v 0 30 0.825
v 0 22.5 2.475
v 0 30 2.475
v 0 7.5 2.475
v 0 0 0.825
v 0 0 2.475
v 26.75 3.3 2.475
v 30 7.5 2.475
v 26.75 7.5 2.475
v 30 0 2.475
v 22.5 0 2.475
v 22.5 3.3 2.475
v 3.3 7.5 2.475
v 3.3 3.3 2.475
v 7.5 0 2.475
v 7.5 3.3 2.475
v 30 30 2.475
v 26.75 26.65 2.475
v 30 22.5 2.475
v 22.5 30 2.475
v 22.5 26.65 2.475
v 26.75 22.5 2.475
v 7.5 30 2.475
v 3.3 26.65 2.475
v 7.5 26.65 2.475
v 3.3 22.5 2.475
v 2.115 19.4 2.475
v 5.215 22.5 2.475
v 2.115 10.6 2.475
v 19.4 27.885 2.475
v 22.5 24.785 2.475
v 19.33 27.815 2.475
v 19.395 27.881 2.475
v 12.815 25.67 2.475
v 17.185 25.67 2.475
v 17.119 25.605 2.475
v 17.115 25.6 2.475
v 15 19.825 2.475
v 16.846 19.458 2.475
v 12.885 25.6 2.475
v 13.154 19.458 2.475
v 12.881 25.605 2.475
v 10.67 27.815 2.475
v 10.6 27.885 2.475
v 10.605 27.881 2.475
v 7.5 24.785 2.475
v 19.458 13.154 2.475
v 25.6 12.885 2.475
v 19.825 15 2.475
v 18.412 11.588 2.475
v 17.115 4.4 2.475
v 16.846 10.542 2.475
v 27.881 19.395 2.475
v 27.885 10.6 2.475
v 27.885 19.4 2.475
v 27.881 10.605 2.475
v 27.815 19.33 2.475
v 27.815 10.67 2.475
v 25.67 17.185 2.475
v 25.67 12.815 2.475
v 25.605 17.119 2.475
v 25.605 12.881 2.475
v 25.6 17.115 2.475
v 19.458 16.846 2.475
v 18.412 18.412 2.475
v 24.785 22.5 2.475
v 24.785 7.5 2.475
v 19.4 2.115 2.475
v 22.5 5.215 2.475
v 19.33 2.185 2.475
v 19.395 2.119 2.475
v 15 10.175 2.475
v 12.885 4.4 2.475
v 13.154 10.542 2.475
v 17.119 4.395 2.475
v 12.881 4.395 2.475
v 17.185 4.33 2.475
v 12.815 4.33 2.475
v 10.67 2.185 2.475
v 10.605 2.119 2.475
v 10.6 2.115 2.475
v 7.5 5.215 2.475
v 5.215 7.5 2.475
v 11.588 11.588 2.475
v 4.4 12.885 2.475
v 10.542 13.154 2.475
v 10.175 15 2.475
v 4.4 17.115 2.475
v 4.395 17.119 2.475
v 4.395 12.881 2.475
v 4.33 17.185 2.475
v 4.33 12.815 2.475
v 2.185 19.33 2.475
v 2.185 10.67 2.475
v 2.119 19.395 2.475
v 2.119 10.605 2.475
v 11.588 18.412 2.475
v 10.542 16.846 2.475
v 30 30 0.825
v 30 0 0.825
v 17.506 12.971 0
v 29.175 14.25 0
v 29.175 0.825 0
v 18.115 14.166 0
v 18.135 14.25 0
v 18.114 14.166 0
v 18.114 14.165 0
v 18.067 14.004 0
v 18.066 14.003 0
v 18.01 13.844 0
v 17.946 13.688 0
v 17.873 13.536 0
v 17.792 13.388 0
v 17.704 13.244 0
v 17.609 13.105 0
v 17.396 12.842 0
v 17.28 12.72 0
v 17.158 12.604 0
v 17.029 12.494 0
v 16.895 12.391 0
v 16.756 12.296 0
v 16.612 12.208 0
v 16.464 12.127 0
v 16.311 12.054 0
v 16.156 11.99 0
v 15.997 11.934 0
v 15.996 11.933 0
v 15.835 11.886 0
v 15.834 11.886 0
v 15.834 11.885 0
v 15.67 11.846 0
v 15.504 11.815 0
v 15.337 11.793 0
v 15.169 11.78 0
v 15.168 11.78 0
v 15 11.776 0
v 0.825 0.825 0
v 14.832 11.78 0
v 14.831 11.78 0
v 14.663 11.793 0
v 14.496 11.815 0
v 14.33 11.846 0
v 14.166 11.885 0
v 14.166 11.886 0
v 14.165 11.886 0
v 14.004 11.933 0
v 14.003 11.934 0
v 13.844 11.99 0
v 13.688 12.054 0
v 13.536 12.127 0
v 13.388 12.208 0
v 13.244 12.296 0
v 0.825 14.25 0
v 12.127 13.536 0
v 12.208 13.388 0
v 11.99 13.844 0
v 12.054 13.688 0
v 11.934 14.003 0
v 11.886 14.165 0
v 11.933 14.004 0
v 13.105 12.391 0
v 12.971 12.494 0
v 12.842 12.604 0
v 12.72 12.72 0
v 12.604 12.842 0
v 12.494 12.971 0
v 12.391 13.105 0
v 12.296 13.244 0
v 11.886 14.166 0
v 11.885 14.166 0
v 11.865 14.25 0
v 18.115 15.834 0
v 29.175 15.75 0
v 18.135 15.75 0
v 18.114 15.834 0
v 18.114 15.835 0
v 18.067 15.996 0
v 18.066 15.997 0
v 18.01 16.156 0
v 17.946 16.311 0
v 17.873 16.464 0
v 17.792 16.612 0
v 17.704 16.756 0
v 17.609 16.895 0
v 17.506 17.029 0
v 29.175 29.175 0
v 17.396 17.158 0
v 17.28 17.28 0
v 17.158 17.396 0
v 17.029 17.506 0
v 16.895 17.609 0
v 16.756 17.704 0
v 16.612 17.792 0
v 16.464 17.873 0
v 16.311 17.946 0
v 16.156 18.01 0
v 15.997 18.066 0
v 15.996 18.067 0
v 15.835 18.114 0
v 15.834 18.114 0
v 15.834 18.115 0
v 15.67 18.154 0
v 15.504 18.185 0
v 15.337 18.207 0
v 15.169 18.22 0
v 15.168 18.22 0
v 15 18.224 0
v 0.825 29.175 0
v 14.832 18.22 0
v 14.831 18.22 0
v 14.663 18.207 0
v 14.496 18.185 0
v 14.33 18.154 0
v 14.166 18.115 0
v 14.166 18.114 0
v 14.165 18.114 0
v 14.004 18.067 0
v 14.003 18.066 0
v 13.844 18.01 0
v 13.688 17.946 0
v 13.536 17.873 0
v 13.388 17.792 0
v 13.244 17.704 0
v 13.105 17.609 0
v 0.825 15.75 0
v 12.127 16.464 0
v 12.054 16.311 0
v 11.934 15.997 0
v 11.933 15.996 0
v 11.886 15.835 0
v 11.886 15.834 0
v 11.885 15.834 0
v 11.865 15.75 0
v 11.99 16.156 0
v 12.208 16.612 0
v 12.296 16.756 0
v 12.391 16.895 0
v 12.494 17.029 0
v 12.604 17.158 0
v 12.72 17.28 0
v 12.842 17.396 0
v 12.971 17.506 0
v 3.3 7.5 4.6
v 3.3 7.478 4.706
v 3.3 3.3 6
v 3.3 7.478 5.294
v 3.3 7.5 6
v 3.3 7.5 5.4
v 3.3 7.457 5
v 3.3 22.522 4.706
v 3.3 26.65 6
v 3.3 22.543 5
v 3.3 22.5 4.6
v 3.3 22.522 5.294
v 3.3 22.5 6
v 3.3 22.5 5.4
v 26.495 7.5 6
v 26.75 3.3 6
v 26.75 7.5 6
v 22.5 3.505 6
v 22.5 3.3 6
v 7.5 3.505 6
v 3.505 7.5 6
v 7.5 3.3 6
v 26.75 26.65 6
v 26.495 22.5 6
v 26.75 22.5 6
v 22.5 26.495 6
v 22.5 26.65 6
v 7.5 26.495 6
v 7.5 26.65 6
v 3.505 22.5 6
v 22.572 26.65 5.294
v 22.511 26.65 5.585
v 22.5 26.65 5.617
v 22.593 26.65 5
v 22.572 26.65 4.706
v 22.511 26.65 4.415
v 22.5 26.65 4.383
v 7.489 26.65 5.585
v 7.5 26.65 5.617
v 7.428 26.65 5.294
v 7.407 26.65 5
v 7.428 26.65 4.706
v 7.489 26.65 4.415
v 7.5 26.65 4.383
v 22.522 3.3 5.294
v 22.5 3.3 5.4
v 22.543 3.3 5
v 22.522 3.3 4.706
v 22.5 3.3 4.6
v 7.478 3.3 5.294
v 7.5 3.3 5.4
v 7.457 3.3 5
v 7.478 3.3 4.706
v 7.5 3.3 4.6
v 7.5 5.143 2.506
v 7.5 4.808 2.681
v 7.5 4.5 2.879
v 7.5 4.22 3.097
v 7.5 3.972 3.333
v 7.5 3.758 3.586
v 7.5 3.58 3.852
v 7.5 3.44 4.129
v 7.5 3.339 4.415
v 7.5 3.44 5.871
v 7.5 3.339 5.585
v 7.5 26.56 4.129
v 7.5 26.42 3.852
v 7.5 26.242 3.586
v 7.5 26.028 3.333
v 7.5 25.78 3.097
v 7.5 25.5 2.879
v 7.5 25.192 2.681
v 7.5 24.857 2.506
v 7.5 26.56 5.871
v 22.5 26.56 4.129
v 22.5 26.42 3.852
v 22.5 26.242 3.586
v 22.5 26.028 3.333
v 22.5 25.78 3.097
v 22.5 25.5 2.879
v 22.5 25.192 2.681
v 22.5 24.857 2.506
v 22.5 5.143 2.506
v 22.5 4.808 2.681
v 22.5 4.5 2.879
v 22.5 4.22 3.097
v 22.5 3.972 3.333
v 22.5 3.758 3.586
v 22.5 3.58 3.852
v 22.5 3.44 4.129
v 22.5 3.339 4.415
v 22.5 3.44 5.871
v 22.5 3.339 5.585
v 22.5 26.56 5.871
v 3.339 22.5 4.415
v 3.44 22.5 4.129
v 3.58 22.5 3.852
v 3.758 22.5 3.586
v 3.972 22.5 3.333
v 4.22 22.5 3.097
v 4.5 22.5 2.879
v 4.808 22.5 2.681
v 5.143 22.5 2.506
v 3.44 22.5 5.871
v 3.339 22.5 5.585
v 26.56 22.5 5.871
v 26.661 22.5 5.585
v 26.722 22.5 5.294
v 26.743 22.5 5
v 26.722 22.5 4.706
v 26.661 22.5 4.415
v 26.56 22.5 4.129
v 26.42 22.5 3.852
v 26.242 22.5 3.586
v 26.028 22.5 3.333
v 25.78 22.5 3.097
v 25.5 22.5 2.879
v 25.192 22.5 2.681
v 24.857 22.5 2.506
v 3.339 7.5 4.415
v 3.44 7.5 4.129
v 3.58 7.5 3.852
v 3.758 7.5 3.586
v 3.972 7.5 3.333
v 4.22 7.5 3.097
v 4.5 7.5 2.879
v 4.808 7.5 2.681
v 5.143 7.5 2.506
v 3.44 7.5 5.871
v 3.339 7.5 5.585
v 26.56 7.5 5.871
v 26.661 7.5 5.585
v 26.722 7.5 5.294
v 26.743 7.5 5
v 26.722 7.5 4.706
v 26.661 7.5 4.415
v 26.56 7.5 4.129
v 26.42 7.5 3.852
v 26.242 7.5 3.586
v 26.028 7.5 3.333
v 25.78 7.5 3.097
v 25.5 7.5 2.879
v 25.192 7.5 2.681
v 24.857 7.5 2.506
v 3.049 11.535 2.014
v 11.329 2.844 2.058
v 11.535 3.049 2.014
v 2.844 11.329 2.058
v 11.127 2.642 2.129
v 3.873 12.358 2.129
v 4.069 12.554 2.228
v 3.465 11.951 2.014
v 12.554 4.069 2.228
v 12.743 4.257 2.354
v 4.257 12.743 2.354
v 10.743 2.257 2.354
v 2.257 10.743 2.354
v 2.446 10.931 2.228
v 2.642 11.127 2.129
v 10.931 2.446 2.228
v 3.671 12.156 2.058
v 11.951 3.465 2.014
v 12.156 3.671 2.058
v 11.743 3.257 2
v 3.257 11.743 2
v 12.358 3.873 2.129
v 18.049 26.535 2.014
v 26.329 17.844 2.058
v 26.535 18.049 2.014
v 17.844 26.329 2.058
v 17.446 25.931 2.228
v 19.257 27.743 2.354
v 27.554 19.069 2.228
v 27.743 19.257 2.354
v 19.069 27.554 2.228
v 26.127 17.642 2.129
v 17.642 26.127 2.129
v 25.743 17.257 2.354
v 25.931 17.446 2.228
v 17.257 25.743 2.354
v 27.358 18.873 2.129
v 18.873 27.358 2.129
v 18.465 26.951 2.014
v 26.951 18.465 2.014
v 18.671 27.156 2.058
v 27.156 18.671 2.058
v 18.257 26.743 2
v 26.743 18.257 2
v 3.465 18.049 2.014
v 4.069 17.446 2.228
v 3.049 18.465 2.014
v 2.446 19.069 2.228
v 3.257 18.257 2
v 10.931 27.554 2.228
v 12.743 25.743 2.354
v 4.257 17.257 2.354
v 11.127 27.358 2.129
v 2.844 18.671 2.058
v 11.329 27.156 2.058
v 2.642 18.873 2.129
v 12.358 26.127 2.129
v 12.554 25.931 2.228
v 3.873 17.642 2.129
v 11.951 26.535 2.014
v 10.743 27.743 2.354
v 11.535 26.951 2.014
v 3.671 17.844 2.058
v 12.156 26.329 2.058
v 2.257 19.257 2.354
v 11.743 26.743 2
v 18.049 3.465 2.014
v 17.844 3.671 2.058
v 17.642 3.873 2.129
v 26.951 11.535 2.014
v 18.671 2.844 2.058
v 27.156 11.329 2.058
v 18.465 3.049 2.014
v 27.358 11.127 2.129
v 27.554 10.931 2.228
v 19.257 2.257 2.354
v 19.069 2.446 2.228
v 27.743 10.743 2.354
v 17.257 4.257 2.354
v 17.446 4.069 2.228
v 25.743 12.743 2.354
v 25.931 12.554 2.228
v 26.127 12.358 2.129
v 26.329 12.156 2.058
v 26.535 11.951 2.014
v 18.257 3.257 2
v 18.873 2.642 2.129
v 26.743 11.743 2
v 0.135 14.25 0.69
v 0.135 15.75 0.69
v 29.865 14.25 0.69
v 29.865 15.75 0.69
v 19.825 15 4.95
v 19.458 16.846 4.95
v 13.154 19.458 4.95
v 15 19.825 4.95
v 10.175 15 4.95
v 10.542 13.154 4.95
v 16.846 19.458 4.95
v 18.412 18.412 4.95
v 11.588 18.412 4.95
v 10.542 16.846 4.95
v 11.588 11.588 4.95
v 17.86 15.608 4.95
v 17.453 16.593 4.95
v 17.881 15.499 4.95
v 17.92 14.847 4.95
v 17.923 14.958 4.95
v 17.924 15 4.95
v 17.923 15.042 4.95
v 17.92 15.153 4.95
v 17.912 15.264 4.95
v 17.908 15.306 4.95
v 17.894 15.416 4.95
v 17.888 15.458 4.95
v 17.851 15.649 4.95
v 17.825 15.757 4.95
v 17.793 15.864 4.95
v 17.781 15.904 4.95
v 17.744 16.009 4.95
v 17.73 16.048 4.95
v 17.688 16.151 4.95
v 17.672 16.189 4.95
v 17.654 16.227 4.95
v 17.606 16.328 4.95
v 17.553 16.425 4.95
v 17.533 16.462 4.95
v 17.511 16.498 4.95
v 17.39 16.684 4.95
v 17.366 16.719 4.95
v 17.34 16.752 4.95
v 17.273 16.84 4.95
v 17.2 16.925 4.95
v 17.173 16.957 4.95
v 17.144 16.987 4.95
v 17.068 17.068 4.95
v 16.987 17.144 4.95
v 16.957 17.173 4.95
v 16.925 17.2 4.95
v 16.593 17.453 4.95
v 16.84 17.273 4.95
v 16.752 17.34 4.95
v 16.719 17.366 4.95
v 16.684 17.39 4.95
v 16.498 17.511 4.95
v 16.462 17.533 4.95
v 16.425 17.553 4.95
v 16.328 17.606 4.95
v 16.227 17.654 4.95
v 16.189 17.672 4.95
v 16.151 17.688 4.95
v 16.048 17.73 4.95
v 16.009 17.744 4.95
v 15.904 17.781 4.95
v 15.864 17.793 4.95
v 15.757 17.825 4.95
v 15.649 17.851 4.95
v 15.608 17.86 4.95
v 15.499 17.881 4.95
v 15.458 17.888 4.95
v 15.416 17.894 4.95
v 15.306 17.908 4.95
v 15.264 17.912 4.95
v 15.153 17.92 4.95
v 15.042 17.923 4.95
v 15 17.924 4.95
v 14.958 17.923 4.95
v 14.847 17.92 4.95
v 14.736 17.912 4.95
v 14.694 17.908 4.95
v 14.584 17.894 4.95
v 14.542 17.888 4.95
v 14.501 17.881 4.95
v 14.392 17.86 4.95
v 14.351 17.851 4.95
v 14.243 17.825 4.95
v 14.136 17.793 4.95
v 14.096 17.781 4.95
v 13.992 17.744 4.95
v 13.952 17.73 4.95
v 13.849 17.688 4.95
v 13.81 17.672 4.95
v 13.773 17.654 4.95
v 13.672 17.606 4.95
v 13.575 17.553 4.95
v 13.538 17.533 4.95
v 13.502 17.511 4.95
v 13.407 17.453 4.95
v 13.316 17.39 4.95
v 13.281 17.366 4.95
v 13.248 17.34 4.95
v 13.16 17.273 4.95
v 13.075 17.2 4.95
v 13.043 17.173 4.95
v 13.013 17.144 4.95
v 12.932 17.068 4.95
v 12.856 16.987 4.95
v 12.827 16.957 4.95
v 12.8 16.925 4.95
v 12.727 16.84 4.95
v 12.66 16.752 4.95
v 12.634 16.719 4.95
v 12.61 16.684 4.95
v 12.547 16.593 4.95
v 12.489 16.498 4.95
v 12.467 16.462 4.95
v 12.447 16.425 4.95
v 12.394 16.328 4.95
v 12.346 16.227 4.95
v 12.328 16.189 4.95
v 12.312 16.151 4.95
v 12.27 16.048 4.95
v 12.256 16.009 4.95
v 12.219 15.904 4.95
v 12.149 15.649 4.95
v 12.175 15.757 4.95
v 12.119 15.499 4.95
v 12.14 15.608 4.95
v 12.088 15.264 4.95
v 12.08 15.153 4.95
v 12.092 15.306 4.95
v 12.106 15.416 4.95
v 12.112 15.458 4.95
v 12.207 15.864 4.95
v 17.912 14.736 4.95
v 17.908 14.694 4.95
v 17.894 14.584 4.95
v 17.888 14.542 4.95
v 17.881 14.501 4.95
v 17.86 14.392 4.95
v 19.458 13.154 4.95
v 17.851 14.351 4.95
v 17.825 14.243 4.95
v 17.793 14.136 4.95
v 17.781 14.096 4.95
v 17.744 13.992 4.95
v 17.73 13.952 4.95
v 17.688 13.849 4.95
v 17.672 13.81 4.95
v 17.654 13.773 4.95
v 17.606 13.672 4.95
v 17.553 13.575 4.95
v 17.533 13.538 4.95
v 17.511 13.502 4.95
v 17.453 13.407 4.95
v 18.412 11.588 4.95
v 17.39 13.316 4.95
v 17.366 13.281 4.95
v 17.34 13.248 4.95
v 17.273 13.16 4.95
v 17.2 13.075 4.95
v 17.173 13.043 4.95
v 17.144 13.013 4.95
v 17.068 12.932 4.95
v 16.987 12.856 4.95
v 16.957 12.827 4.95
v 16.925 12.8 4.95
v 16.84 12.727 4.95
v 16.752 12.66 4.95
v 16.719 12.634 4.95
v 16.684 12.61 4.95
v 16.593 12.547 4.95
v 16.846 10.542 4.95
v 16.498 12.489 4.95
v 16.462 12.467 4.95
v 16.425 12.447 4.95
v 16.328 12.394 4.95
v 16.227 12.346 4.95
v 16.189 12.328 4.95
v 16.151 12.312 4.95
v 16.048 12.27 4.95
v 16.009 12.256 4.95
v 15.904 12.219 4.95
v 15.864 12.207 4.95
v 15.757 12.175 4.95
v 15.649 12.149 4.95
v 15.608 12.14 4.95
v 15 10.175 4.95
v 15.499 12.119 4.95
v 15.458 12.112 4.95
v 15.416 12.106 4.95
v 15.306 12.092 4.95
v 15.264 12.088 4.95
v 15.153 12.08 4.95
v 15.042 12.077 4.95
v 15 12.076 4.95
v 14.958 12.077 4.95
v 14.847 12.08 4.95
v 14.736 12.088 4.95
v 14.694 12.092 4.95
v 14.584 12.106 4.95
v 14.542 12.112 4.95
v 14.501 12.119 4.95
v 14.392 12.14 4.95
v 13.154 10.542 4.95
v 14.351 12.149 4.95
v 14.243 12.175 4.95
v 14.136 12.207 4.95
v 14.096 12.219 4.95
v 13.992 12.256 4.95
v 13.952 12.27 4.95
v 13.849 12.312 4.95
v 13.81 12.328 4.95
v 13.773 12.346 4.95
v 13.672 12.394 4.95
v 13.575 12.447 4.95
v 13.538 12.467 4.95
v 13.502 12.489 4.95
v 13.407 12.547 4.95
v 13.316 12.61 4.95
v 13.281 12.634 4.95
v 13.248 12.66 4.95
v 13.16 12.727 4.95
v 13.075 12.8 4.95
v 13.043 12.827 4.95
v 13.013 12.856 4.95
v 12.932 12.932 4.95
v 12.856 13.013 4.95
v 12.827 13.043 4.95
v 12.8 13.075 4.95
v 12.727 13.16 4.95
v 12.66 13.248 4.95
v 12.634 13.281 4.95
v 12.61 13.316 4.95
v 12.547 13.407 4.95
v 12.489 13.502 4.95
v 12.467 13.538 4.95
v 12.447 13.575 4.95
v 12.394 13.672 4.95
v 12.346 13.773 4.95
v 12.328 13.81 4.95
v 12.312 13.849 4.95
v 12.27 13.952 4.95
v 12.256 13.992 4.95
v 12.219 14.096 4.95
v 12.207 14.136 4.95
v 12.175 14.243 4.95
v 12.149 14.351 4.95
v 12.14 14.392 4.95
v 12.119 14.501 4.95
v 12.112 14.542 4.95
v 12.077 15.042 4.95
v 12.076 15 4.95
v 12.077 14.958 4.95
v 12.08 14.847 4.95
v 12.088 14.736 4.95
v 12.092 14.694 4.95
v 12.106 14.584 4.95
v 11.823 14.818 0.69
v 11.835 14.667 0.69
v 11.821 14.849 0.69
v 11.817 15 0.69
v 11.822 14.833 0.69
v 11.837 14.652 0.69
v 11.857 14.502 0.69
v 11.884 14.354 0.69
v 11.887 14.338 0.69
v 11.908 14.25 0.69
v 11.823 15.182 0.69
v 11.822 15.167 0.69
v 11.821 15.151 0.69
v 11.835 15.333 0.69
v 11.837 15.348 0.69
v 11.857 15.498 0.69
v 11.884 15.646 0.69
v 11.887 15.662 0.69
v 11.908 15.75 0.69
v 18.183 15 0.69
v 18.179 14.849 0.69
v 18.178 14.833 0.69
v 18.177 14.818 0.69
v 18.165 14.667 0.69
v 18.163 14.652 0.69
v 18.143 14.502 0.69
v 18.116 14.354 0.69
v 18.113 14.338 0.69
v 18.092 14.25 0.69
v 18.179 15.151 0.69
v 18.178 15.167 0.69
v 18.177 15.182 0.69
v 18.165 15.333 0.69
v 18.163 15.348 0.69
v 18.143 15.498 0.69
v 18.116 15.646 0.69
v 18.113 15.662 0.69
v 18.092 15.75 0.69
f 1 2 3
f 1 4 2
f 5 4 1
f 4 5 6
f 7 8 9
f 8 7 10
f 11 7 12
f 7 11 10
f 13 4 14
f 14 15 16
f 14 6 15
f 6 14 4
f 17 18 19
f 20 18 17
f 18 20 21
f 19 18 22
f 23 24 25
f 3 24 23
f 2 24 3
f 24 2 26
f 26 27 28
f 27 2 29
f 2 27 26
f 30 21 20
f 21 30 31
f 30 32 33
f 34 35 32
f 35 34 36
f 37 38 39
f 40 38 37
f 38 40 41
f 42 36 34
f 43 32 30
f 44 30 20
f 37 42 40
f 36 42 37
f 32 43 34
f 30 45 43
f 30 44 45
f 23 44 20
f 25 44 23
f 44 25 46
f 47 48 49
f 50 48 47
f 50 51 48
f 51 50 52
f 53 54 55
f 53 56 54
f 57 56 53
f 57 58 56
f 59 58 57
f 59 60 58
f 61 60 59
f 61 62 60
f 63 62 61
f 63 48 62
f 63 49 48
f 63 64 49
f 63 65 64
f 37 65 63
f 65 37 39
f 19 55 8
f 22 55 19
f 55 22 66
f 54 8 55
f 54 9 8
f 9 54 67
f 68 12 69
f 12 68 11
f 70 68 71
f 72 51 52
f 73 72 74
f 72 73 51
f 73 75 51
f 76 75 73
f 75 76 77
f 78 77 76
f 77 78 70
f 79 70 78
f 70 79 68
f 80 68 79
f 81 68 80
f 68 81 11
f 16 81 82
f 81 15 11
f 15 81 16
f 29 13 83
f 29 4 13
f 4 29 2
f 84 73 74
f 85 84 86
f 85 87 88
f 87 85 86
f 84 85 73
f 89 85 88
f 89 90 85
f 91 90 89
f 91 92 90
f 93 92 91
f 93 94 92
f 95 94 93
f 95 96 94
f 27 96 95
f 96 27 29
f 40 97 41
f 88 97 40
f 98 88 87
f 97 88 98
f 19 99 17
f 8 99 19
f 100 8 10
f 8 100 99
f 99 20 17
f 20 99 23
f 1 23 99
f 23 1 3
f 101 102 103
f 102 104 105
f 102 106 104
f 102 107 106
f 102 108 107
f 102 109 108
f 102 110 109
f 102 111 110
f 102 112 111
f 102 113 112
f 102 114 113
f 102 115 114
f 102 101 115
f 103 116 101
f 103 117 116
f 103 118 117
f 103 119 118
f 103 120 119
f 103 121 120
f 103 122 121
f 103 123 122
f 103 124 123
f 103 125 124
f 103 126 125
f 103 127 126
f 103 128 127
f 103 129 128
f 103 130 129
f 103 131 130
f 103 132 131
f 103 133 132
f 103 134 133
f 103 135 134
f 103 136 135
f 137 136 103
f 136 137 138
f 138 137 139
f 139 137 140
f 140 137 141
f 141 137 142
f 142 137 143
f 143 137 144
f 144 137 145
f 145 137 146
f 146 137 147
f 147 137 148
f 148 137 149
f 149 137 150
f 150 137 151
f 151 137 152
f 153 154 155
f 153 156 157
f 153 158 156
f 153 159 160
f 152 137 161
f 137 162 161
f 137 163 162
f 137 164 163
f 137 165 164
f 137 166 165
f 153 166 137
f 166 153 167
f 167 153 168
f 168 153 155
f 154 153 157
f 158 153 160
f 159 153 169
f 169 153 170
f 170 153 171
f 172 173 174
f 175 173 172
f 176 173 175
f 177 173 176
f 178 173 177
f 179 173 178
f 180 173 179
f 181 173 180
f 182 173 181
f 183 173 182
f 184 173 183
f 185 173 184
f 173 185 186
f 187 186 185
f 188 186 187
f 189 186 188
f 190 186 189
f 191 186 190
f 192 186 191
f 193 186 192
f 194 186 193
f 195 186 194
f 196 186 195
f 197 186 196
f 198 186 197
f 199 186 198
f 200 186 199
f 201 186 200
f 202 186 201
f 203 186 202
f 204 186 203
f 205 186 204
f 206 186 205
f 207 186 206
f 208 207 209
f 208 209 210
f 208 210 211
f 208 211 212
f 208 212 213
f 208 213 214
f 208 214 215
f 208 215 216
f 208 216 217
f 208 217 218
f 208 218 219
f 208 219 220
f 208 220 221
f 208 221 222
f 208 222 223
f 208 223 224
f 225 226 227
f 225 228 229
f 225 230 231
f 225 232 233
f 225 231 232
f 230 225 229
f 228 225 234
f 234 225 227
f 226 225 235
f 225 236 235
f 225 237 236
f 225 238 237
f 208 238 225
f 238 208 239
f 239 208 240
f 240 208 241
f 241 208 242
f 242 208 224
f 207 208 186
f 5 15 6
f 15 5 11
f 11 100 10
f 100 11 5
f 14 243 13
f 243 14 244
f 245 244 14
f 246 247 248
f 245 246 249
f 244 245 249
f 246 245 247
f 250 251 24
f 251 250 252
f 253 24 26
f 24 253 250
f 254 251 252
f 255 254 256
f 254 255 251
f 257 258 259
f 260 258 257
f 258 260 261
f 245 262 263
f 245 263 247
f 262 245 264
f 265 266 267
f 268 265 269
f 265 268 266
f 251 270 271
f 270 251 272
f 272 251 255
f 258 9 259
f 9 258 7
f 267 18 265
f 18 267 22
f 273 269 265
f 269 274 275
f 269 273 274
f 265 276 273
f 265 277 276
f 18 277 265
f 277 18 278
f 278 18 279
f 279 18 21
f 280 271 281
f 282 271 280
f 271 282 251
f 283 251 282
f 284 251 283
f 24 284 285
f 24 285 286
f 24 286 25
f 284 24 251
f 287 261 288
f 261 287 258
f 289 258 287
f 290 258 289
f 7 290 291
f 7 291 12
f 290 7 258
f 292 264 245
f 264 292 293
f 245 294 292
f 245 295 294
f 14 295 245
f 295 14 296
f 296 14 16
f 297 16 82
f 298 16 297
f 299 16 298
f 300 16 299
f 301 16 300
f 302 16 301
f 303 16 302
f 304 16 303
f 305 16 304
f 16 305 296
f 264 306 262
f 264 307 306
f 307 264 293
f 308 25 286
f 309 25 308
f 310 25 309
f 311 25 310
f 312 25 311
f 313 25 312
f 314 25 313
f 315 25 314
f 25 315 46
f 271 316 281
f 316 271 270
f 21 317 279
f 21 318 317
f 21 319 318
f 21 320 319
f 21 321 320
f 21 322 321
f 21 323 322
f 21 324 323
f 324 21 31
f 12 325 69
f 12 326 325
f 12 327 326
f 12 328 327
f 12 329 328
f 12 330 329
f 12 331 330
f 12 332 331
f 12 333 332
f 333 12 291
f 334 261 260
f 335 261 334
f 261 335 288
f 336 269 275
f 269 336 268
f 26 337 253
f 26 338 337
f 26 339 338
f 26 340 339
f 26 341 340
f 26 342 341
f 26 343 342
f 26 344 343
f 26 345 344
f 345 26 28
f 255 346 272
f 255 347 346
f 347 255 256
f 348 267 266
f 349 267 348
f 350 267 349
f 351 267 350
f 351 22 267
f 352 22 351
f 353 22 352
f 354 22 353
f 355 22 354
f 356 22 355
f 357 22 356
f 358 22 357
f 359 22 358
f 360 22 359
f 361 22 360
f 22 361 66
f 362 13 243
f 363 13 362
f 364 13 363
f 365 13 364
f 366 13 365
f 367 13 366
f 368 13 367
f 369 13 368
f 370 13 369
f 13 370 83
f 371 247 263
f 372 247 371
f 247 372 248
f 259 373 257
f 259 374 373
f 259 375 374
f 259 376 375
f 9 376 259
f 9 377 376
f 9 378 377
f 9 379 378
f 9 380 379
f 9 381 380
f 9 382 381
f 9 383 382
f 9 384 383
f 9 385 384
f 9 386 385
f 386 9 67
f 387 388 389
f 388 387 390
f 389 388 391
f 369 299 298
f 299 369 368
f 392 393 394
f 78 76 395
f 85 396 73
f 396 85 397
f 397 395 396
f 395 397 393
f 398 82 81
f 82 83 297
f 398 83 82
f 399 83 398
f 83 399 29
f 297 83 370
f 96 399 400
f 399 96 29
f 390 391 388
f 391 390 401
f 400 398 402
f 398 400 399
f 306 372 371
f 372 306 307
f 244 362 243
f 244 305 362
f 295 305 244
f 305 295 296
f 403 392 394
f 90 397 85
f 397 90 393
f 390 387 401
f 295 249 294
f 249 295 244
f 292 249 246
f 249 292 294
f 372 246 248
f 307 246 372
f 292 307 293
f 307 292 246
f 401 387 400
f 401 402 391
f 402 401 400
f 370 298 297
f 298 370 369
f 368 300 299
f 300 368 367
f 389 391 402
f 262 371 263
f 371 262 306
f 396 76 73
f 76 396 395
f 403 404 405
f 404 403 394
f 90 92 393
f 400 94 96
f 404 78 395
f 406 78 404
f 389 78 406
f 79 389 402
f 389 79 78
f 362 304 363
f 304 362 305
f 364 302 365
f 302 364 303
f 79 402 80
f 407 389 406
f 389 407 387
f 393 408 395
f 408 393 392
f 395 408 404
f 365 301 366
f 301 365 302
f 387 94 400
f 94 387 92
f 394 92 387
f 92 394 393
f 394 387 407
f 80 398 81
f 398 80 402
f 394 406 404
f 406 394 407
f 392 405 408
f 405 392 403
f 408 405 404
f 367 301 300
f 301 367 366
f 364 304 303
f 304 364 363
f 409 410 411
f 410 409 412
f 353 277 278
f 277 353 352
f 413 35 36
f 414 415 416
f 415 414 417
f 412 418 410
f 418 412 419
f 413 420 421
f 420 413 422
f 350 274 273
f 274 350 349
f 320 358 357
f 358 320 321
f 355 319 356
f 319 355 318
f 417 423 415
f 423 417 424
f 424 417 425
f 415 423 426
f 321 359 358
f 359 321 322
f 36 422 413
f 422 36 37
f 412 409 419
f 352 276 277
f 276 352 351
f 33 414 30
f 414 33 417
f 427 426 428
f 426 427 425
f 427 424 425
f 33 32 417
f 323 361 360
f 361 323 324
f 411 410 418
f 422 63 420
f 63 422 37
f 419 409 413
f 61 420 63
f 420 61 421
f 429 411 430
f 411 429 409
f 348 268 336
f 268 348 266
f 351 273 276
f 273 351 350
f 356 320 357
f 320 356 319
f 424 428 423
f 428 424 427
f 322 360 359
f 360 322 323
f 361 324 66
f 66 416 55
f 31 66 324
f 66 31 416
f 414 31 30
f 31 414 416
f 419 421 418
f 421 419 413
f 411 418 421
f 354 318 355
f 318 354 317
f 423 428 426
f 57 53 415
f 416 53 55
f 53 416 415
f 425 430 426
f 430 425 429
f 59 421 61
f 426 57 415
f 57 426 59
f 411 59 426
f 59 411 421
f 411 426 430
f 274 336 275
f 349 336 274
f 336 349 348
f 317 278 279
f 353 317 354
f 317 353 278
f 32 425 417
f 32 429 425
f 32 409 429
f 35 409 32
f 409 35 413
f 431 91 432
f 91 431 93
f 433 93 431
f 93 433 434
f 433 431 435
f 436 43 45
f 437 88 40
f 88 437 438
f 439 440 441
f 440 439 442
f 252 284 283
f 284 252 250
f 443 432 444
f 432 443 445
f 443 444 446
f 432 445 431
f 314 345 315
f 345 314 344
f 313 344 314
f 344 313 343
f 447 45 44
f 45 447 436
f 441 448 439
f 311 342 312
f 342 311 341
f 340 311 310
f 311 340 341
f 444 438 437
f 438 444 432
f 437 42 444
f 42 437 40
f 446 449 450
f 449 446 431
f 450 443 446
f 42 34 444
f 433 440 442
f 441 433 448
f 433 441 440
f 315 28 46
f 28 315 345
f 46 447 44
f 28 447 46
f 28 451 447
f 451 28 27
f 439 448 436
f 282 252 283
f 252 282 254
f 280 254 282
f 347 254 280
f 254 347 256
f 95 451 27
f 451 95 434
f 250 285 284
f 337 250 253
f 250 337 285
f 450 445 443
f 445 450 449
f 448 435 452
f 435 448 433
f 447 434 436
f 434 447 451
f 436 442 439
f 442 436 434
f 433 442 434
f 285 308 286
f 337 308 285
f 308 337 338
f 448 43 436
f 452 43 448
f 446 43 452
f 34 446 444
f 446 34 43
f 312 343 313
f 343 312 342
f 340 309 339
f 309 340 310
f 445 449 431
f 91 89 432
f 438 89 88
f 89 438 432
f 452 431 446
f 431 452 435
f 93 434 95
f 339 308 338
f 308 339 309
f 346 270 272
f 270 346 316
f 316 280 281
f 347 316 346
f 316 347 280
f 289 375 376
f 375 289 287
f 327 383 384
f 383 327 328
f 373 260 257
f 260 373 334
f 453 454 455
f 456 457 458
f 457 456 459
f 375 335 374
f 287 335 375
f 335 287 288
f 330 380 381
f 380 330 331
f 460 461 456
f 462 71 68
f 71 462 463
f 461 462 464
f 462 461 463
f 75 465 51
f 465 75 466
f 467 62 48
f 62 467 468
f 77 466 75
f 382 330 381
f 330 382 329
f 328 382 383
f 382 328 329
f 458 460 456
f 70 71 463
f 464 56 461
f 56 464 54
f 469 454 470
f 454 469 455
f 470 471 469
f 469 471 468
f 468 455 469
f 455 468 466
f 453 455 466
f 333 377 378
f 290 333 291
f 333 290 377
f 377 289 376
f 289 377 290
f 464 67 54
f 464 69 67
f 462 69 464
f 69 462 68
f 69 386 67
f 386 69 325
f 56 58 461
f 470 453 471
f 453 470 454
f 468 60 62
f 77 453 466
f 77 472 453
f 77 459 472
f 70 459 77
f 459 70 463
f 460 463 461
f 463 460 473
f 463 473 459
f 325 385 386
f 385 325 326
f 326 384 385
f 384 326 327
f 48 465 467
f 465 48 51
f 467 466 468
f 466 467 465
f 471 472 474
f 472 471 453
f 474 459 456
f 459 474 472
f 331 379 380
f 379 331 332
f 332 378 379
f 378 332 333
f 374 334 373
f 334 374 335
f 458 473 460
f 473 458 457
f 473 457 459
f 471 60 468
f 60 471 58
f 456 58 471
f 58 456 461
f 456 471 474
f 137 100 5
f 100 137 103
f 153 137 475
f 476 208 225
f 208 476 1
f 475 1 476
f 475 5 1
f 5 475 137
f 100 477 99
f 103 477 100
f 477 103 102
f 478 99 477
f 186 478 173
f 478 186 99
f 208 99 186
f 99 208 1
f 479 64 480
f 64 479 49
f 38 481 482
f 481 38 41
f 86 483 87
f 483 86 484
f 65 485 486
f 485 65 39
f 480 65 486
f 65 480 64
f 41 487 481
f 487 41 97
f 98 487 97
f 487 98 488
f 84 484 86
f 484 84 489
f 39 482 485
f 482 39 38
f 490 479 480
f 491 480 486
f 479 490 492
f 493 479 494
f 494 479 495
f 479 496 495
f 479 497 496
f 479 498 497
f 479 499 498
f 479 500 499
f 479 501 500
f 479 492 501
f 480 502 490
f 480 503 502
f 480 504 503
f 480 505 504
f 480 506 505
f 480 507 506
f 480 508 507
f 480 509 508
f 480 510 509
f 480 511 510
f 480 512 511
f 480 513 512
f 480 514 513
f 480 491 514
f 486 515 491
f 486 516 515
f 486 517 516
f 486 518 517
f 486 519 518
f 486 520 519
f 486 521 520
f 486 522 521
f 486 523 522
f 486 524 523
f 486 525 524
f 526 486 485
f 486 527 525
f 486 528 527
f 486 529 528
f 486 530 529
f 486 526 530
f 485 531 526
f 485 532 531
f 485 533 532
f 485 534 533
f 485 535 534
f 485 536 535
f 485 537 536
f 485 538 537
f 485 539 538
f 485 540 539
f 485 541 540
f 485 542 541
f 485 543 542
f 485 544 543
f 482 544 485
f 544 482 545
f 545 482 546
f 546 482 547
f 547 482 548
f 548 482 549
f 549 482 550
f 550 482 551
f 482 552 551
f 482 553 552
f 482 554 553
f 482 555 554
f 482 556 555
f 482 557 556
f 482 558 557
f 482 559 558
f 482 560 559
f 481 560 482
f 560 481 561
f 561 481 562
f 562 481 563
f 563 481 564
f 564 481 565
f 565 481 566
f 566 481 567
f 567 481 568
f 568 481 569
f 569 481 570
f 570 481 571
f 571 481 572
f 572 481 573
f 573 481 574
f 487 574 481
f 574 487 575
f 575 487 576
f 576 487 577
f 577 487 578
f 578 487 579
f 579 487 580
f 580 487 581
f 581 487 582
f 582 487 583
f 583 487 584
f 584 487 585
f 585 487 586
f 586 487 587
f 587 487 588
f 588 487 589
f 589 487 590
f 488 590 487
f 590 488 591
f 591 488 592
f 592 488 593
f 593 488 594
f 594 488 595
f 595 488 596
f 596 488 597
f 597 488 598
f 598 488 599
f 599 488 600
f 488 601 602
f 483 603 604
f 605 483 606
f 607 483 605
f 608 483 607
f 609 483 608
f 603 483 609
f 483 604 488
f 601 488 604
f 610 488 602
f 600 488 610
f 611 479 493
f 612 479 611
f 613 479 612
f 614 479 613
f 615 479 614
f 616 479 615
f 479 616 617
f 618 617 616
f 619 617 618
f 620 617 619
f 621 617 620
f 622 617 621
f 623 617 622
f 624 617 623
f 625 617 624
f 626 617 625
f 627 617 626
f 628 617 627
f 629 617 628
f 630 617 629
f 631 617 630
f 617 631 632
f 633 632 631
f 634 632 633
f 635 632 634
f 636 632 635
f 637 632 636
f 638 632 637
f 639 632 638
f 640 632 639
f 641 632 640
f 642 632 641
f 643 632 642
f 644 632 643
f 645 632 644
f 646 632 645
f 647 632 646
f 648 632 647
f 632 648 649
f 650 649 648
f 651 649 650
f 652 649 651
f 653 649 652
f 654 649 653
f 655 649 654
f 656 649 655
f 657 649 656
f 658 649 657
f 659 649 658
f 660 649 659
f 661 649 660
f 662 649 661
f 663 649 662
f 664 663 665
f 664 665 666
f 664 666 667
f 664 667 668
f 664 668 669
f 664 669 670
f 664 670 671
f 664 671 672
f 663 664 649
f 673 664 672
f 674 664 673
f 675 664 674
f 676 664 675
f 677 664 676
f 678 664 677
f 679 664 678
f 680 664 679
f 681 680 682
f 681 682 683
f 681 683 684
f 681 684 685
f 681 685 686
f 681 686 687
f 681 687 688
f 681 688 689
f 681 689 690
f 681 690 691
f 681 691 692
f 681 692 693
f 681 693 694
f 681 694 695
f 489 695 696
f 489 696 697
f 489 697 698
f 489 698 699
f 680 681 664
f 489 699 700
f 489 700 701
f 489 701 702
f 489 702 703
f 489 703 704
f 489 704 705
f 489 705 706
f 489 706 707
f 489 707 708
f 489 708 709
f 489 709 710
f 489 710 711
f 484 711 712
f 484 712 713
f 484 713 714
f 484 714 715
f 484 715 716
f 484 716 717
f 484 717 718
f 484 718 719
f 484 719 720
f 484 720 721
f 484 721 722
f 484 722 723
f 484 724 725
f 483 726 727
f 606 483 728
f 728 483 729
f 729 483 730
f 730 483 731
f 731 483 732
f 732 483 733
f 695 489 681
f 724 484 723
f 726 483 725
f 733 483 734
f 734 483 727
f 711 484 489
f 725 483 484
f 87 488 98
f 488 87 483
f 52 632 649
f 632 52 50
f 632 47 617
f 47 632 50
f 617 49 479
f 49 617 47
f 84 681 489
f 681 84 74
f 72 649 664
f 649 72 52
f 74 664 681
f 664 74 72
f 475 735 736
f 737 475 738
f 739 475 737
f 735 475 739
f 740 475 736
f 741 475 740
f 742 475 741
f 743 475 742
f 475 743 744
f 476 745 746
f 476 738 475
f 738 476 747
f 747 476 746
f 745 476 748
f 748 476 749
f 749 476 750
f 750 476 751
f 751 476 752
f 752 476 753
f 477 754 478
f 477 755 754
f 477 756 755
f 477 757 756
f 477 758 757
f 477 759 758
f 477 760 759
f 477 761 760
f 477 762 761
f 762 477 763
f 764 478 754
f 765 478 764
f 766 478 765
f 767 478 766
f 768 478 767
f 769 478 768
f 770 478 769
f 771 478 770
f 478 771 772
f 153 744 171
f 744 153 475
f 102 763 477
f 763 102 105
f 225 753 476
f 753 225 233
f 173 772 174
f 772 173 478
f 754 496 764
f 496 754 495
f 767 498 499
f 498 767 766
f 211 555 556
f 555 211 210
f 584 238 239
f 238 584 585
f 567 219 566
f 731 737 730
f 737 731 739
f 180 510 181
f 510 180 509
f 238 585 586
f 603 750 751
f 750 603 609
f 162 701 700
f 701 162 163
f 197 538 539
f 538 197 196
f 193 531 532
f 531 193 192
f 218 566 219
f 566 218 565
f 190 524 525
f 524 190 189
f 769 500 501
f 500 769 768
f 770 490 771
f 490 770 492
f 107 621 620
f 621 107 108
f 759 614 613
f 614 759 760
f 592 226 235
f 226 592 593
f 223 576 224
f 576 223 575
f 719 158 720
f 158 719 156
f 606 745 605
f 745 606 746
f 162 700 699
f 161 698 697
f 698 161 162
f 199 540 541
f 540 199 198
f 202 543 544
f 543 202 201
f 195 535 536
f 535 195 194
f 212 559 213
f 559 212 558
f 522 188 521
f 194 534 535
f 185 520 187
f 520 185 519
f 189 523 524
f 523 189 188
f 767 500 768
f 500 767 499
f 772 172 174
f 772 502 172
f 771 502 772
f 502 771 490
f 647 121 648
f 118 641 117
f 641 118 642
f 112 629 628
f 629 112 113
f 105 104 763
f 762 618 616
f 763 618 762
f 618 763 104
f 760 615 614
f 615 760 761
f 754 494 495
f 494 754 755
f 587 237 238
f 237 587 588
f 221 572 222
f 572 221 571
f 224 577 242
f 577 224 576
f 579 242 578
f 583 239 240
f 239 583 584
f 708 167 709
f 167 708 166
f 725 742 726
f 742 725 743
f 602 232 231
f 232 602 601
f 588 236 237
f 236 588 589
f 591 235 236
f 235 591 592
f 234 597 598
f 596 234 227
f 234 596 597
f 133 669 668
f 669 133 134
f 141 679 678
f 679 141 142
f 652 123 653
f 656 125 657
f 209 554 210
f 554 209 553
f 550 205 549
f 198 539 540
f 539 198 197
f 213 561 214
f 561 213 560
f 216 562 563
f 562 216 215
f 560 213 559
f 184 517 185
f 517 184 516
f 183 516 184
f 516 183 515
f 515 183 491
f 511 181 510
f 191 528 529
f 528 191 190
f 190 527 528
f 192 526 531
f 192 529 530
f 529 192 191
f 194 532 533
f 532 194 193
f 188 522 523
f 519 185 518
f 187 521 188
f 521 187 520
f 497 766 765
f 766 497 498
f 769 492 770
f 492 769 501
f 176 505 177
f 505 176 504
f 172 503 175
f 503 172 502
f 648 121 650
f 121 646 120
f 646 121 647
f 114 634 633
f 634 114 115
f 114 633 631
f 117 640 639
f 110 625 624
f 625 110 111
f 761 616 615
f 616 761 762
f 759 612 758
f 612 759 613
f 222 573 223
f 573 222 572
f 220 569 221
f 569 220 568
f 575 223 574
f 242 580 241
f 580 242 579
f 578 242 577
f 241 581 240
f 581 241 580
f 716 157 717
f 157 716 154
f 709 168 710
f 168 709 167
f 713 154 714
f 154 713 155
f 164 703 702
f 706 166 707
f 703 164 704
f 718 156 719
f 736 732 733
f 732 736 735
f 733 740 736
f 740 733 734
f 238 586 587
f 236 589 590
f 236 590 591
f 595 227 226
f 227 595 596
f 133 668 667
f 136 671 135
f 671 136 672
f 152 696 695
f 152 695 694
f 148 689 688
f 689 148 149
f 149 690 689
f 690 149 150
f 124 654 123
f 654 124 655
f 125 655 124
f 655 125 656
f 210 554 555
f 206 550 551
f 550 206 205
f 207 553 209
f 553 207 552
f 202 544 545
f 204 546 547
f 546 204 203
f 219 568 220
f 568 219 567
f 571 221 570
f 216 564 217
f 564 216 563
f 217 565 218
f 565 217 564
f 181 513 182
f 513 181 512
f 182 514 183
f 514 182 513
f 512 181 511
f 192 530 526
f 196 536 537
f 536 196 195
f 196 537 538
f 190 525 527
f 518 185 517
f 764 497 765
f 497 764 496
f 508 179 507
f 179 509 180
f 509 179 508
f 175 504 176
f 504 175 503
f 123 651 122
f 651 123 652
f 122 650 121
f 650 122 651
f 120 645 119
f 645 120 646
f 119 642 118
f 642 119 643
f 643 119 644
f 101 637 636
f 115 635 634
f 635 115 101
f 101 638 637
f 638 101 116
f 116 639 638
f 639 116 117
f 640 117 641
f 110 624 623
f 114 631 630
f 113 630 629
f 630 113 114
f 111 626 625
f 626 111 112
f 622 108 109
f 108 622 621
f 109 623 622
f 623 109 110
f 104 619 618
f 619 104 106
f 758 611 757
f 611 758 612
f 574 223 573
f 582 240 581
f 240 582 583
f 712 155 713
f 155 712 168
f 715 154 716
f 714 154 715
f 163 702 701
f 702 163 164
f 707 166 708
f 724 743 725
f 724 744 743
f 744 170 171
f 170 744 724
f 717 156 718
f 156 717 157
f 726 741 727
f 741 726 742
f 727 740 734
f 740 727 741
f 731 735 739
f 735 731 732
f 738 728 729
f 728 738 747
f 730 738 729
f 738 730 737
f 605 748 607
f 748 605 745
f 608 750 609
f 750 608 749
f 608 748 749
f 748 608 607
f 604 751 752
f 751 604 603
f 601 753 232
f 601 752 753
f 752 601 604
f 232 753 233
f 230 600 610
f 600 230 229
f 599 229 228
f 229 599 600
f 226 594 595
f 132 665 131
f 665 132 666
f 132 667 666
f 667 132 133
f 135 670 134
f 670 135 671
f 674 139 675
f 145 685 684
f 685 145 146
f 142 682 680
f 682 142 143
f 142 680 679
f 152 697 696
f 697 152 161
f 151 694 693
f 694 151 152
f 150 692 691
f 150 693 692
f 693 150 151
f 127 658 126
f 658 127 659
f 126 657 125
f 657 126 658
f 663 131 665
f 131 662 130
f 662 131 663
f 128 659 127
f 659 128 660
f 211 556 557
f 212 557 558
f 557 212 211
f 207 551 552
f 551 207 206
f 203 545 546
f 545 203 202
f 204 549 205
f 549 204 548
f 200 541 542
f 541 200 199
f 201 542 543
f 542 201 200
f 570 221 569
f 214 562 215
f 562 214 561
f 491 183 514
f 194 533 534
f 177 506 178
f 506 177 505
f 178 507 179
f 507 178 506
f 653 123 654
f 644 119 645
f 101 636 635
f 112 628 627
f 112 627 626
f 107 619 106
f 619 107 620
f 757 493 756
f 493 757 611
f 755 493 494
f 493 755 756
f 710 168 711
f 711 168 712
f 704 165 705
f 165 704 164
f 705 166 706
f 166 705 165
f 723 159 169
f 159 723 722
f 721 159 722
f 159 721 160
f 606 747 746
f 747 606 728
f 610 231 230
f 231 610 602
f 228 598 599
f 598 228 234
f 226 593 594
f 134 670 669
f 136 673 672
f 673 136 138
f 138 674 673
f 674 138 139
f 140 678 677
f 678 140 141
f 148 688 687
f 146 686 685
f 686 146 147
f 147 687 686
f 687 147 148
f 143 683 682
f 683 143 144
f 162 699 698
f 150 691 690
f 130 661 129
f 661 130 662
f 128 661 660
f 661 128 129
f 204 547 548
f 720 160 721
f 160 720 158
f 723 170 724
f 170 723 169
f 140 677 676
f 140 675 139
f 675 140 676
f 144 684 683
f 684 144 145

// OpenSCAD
// file: settings.scad
cube_width=30;
cube_height=16;
cube_thickness=3.3;

cap_width=30;
cap_height=6;
cap_thickness=3.3;

glyph_depth=0.7;
glyph_thickness=1.5;

photo_resitor_hole_r = 2.4;
spring_contact_hole_r = 3.125;
// file: cap_1x1.scad
include <settings.scad>

module cap_1x1(width, height, thickness, holes_mask)
{
    width1=width-thickness;
    shrink_teeth = 0.02;
    st = shrink_teeth;
    difference()
    {
        union()
        {
            cube([width, width, thickness*3/4]);
            translate([thickness+st,thickness+st,0])cube([width-2*(thickness+st-0.025), width-2*(thickness+st+0.025), height]);
        }
        union()
        {
            //translate([width/2,width/2,0])rotate([0,0,45])translate([-width1/2,-width1/2,thickness*3/4]) cube([width1,width1,height]);
            translate([width/4,0,thickness*3/4])cube([width/2,width,height]);
            translate([0,width/4,thickness*3/4])cube([width,width/2,height]);
            translate([width/4,width/4,width/6])rotate([90,0,45])translate([0,0,-height])cylinder(r=height/2, h=2*height, $fn=64);
            translate([3*width/4,3*width/4,width/6])rotate([90,0,45])translate([0,0,-height])cylinder(r=height/2, h=height*2, $fn=64);
            translate([width/4,3*width/4,width/6])rotate([90,0,-45])translate([0,0,-height])cylinder(r=height/2, h=2*height, $fn=64);
            translate([3*width/4,width/4,width/6])rotate([90,0,-45])translate([0,0,-height])cylinder(r=height/2, h=height*2, $fn=64);
            //corners
            translate([0,0.25*thickness,0])rotate([45,0,0]) translate([-0.5*width, -width, -0.5*height]) cube([2*width, width, 2*height]);
            translate([0.25*thickness,0,0]) rotate([0,-45,0]) translate([-width, -0.5*width, -0.5*height]) cube([width, 2*width, 2*height]);
            translate([width-0.25*thickness,0,0]) rotate([0,45,0]) translate([0, 0, -0.5*height]) cube([width, 2*width, 2*height]);
            translate([0,width-0.25*thickness,0]) rotate([-45,0,0]) translate([-0.5*width, 0, -0.5*height]) cube([2*width, width, 2*height]);
            
            if (holes_mask >= 8)
            {
                translate([width/2, thickness-1.5, -0.5]) cylinder(r=1.15, h=height*1.5, $fn=80);
            }
            if ((holes_mask%8) >= 4)
            {
                translate([width/2, width-thickness+1.5, -0.5]) cylinder(r=1.15, h=height*1.5, $fn=80);
            }
            if ((holes_mask%4)>= 2)
            {
                translate([thickness-1.5, width/2, -0.5]) cylinder(r=1.15, h=height*1.5, $fn=80);
            }
            if (holes_mask%2 >= 1)
            {
                translate([width-thickness+1.5, width/2, -0.5]) cylinder(r=1.15, h=height*1.5, $fn=80);
            }
        }
    }
}

cap_1x1(cap_width, cap_height, cap_thickness, 9);
//ring(10,1,1);
//arrow(1, 20, 3, 1);
//transistor_npn(30, 1, 1);
// main file
use <cap_1x1.scad>
include <settings.scad>

module cap_1x1_wireIoI(width, height, thickness)
{
    cr1 = spring_contact_hole_r+0.1;
    cr2 = spring_contact_hole_r-0.3;
    difference()
    {
        union()
        {
            cap_1x1(width, height, thickness, 0); //3
            translate([width/2,width/2,0]) cylinder(r=(cr2+2), h=thickness*1.5);
        }
        translate([0,(width-glyph_thickness)/2,-0.01]) cube([width, glyph_thickness, glyph_depth]);
        translate([width/2,width/2,-0.01])cylinder(r1=cr1, r2=cr2, h=2*thickness, $fn=120);
    }
}

cap_1x1_wireIoI(cap_width, cap_height, cap_thickness);
